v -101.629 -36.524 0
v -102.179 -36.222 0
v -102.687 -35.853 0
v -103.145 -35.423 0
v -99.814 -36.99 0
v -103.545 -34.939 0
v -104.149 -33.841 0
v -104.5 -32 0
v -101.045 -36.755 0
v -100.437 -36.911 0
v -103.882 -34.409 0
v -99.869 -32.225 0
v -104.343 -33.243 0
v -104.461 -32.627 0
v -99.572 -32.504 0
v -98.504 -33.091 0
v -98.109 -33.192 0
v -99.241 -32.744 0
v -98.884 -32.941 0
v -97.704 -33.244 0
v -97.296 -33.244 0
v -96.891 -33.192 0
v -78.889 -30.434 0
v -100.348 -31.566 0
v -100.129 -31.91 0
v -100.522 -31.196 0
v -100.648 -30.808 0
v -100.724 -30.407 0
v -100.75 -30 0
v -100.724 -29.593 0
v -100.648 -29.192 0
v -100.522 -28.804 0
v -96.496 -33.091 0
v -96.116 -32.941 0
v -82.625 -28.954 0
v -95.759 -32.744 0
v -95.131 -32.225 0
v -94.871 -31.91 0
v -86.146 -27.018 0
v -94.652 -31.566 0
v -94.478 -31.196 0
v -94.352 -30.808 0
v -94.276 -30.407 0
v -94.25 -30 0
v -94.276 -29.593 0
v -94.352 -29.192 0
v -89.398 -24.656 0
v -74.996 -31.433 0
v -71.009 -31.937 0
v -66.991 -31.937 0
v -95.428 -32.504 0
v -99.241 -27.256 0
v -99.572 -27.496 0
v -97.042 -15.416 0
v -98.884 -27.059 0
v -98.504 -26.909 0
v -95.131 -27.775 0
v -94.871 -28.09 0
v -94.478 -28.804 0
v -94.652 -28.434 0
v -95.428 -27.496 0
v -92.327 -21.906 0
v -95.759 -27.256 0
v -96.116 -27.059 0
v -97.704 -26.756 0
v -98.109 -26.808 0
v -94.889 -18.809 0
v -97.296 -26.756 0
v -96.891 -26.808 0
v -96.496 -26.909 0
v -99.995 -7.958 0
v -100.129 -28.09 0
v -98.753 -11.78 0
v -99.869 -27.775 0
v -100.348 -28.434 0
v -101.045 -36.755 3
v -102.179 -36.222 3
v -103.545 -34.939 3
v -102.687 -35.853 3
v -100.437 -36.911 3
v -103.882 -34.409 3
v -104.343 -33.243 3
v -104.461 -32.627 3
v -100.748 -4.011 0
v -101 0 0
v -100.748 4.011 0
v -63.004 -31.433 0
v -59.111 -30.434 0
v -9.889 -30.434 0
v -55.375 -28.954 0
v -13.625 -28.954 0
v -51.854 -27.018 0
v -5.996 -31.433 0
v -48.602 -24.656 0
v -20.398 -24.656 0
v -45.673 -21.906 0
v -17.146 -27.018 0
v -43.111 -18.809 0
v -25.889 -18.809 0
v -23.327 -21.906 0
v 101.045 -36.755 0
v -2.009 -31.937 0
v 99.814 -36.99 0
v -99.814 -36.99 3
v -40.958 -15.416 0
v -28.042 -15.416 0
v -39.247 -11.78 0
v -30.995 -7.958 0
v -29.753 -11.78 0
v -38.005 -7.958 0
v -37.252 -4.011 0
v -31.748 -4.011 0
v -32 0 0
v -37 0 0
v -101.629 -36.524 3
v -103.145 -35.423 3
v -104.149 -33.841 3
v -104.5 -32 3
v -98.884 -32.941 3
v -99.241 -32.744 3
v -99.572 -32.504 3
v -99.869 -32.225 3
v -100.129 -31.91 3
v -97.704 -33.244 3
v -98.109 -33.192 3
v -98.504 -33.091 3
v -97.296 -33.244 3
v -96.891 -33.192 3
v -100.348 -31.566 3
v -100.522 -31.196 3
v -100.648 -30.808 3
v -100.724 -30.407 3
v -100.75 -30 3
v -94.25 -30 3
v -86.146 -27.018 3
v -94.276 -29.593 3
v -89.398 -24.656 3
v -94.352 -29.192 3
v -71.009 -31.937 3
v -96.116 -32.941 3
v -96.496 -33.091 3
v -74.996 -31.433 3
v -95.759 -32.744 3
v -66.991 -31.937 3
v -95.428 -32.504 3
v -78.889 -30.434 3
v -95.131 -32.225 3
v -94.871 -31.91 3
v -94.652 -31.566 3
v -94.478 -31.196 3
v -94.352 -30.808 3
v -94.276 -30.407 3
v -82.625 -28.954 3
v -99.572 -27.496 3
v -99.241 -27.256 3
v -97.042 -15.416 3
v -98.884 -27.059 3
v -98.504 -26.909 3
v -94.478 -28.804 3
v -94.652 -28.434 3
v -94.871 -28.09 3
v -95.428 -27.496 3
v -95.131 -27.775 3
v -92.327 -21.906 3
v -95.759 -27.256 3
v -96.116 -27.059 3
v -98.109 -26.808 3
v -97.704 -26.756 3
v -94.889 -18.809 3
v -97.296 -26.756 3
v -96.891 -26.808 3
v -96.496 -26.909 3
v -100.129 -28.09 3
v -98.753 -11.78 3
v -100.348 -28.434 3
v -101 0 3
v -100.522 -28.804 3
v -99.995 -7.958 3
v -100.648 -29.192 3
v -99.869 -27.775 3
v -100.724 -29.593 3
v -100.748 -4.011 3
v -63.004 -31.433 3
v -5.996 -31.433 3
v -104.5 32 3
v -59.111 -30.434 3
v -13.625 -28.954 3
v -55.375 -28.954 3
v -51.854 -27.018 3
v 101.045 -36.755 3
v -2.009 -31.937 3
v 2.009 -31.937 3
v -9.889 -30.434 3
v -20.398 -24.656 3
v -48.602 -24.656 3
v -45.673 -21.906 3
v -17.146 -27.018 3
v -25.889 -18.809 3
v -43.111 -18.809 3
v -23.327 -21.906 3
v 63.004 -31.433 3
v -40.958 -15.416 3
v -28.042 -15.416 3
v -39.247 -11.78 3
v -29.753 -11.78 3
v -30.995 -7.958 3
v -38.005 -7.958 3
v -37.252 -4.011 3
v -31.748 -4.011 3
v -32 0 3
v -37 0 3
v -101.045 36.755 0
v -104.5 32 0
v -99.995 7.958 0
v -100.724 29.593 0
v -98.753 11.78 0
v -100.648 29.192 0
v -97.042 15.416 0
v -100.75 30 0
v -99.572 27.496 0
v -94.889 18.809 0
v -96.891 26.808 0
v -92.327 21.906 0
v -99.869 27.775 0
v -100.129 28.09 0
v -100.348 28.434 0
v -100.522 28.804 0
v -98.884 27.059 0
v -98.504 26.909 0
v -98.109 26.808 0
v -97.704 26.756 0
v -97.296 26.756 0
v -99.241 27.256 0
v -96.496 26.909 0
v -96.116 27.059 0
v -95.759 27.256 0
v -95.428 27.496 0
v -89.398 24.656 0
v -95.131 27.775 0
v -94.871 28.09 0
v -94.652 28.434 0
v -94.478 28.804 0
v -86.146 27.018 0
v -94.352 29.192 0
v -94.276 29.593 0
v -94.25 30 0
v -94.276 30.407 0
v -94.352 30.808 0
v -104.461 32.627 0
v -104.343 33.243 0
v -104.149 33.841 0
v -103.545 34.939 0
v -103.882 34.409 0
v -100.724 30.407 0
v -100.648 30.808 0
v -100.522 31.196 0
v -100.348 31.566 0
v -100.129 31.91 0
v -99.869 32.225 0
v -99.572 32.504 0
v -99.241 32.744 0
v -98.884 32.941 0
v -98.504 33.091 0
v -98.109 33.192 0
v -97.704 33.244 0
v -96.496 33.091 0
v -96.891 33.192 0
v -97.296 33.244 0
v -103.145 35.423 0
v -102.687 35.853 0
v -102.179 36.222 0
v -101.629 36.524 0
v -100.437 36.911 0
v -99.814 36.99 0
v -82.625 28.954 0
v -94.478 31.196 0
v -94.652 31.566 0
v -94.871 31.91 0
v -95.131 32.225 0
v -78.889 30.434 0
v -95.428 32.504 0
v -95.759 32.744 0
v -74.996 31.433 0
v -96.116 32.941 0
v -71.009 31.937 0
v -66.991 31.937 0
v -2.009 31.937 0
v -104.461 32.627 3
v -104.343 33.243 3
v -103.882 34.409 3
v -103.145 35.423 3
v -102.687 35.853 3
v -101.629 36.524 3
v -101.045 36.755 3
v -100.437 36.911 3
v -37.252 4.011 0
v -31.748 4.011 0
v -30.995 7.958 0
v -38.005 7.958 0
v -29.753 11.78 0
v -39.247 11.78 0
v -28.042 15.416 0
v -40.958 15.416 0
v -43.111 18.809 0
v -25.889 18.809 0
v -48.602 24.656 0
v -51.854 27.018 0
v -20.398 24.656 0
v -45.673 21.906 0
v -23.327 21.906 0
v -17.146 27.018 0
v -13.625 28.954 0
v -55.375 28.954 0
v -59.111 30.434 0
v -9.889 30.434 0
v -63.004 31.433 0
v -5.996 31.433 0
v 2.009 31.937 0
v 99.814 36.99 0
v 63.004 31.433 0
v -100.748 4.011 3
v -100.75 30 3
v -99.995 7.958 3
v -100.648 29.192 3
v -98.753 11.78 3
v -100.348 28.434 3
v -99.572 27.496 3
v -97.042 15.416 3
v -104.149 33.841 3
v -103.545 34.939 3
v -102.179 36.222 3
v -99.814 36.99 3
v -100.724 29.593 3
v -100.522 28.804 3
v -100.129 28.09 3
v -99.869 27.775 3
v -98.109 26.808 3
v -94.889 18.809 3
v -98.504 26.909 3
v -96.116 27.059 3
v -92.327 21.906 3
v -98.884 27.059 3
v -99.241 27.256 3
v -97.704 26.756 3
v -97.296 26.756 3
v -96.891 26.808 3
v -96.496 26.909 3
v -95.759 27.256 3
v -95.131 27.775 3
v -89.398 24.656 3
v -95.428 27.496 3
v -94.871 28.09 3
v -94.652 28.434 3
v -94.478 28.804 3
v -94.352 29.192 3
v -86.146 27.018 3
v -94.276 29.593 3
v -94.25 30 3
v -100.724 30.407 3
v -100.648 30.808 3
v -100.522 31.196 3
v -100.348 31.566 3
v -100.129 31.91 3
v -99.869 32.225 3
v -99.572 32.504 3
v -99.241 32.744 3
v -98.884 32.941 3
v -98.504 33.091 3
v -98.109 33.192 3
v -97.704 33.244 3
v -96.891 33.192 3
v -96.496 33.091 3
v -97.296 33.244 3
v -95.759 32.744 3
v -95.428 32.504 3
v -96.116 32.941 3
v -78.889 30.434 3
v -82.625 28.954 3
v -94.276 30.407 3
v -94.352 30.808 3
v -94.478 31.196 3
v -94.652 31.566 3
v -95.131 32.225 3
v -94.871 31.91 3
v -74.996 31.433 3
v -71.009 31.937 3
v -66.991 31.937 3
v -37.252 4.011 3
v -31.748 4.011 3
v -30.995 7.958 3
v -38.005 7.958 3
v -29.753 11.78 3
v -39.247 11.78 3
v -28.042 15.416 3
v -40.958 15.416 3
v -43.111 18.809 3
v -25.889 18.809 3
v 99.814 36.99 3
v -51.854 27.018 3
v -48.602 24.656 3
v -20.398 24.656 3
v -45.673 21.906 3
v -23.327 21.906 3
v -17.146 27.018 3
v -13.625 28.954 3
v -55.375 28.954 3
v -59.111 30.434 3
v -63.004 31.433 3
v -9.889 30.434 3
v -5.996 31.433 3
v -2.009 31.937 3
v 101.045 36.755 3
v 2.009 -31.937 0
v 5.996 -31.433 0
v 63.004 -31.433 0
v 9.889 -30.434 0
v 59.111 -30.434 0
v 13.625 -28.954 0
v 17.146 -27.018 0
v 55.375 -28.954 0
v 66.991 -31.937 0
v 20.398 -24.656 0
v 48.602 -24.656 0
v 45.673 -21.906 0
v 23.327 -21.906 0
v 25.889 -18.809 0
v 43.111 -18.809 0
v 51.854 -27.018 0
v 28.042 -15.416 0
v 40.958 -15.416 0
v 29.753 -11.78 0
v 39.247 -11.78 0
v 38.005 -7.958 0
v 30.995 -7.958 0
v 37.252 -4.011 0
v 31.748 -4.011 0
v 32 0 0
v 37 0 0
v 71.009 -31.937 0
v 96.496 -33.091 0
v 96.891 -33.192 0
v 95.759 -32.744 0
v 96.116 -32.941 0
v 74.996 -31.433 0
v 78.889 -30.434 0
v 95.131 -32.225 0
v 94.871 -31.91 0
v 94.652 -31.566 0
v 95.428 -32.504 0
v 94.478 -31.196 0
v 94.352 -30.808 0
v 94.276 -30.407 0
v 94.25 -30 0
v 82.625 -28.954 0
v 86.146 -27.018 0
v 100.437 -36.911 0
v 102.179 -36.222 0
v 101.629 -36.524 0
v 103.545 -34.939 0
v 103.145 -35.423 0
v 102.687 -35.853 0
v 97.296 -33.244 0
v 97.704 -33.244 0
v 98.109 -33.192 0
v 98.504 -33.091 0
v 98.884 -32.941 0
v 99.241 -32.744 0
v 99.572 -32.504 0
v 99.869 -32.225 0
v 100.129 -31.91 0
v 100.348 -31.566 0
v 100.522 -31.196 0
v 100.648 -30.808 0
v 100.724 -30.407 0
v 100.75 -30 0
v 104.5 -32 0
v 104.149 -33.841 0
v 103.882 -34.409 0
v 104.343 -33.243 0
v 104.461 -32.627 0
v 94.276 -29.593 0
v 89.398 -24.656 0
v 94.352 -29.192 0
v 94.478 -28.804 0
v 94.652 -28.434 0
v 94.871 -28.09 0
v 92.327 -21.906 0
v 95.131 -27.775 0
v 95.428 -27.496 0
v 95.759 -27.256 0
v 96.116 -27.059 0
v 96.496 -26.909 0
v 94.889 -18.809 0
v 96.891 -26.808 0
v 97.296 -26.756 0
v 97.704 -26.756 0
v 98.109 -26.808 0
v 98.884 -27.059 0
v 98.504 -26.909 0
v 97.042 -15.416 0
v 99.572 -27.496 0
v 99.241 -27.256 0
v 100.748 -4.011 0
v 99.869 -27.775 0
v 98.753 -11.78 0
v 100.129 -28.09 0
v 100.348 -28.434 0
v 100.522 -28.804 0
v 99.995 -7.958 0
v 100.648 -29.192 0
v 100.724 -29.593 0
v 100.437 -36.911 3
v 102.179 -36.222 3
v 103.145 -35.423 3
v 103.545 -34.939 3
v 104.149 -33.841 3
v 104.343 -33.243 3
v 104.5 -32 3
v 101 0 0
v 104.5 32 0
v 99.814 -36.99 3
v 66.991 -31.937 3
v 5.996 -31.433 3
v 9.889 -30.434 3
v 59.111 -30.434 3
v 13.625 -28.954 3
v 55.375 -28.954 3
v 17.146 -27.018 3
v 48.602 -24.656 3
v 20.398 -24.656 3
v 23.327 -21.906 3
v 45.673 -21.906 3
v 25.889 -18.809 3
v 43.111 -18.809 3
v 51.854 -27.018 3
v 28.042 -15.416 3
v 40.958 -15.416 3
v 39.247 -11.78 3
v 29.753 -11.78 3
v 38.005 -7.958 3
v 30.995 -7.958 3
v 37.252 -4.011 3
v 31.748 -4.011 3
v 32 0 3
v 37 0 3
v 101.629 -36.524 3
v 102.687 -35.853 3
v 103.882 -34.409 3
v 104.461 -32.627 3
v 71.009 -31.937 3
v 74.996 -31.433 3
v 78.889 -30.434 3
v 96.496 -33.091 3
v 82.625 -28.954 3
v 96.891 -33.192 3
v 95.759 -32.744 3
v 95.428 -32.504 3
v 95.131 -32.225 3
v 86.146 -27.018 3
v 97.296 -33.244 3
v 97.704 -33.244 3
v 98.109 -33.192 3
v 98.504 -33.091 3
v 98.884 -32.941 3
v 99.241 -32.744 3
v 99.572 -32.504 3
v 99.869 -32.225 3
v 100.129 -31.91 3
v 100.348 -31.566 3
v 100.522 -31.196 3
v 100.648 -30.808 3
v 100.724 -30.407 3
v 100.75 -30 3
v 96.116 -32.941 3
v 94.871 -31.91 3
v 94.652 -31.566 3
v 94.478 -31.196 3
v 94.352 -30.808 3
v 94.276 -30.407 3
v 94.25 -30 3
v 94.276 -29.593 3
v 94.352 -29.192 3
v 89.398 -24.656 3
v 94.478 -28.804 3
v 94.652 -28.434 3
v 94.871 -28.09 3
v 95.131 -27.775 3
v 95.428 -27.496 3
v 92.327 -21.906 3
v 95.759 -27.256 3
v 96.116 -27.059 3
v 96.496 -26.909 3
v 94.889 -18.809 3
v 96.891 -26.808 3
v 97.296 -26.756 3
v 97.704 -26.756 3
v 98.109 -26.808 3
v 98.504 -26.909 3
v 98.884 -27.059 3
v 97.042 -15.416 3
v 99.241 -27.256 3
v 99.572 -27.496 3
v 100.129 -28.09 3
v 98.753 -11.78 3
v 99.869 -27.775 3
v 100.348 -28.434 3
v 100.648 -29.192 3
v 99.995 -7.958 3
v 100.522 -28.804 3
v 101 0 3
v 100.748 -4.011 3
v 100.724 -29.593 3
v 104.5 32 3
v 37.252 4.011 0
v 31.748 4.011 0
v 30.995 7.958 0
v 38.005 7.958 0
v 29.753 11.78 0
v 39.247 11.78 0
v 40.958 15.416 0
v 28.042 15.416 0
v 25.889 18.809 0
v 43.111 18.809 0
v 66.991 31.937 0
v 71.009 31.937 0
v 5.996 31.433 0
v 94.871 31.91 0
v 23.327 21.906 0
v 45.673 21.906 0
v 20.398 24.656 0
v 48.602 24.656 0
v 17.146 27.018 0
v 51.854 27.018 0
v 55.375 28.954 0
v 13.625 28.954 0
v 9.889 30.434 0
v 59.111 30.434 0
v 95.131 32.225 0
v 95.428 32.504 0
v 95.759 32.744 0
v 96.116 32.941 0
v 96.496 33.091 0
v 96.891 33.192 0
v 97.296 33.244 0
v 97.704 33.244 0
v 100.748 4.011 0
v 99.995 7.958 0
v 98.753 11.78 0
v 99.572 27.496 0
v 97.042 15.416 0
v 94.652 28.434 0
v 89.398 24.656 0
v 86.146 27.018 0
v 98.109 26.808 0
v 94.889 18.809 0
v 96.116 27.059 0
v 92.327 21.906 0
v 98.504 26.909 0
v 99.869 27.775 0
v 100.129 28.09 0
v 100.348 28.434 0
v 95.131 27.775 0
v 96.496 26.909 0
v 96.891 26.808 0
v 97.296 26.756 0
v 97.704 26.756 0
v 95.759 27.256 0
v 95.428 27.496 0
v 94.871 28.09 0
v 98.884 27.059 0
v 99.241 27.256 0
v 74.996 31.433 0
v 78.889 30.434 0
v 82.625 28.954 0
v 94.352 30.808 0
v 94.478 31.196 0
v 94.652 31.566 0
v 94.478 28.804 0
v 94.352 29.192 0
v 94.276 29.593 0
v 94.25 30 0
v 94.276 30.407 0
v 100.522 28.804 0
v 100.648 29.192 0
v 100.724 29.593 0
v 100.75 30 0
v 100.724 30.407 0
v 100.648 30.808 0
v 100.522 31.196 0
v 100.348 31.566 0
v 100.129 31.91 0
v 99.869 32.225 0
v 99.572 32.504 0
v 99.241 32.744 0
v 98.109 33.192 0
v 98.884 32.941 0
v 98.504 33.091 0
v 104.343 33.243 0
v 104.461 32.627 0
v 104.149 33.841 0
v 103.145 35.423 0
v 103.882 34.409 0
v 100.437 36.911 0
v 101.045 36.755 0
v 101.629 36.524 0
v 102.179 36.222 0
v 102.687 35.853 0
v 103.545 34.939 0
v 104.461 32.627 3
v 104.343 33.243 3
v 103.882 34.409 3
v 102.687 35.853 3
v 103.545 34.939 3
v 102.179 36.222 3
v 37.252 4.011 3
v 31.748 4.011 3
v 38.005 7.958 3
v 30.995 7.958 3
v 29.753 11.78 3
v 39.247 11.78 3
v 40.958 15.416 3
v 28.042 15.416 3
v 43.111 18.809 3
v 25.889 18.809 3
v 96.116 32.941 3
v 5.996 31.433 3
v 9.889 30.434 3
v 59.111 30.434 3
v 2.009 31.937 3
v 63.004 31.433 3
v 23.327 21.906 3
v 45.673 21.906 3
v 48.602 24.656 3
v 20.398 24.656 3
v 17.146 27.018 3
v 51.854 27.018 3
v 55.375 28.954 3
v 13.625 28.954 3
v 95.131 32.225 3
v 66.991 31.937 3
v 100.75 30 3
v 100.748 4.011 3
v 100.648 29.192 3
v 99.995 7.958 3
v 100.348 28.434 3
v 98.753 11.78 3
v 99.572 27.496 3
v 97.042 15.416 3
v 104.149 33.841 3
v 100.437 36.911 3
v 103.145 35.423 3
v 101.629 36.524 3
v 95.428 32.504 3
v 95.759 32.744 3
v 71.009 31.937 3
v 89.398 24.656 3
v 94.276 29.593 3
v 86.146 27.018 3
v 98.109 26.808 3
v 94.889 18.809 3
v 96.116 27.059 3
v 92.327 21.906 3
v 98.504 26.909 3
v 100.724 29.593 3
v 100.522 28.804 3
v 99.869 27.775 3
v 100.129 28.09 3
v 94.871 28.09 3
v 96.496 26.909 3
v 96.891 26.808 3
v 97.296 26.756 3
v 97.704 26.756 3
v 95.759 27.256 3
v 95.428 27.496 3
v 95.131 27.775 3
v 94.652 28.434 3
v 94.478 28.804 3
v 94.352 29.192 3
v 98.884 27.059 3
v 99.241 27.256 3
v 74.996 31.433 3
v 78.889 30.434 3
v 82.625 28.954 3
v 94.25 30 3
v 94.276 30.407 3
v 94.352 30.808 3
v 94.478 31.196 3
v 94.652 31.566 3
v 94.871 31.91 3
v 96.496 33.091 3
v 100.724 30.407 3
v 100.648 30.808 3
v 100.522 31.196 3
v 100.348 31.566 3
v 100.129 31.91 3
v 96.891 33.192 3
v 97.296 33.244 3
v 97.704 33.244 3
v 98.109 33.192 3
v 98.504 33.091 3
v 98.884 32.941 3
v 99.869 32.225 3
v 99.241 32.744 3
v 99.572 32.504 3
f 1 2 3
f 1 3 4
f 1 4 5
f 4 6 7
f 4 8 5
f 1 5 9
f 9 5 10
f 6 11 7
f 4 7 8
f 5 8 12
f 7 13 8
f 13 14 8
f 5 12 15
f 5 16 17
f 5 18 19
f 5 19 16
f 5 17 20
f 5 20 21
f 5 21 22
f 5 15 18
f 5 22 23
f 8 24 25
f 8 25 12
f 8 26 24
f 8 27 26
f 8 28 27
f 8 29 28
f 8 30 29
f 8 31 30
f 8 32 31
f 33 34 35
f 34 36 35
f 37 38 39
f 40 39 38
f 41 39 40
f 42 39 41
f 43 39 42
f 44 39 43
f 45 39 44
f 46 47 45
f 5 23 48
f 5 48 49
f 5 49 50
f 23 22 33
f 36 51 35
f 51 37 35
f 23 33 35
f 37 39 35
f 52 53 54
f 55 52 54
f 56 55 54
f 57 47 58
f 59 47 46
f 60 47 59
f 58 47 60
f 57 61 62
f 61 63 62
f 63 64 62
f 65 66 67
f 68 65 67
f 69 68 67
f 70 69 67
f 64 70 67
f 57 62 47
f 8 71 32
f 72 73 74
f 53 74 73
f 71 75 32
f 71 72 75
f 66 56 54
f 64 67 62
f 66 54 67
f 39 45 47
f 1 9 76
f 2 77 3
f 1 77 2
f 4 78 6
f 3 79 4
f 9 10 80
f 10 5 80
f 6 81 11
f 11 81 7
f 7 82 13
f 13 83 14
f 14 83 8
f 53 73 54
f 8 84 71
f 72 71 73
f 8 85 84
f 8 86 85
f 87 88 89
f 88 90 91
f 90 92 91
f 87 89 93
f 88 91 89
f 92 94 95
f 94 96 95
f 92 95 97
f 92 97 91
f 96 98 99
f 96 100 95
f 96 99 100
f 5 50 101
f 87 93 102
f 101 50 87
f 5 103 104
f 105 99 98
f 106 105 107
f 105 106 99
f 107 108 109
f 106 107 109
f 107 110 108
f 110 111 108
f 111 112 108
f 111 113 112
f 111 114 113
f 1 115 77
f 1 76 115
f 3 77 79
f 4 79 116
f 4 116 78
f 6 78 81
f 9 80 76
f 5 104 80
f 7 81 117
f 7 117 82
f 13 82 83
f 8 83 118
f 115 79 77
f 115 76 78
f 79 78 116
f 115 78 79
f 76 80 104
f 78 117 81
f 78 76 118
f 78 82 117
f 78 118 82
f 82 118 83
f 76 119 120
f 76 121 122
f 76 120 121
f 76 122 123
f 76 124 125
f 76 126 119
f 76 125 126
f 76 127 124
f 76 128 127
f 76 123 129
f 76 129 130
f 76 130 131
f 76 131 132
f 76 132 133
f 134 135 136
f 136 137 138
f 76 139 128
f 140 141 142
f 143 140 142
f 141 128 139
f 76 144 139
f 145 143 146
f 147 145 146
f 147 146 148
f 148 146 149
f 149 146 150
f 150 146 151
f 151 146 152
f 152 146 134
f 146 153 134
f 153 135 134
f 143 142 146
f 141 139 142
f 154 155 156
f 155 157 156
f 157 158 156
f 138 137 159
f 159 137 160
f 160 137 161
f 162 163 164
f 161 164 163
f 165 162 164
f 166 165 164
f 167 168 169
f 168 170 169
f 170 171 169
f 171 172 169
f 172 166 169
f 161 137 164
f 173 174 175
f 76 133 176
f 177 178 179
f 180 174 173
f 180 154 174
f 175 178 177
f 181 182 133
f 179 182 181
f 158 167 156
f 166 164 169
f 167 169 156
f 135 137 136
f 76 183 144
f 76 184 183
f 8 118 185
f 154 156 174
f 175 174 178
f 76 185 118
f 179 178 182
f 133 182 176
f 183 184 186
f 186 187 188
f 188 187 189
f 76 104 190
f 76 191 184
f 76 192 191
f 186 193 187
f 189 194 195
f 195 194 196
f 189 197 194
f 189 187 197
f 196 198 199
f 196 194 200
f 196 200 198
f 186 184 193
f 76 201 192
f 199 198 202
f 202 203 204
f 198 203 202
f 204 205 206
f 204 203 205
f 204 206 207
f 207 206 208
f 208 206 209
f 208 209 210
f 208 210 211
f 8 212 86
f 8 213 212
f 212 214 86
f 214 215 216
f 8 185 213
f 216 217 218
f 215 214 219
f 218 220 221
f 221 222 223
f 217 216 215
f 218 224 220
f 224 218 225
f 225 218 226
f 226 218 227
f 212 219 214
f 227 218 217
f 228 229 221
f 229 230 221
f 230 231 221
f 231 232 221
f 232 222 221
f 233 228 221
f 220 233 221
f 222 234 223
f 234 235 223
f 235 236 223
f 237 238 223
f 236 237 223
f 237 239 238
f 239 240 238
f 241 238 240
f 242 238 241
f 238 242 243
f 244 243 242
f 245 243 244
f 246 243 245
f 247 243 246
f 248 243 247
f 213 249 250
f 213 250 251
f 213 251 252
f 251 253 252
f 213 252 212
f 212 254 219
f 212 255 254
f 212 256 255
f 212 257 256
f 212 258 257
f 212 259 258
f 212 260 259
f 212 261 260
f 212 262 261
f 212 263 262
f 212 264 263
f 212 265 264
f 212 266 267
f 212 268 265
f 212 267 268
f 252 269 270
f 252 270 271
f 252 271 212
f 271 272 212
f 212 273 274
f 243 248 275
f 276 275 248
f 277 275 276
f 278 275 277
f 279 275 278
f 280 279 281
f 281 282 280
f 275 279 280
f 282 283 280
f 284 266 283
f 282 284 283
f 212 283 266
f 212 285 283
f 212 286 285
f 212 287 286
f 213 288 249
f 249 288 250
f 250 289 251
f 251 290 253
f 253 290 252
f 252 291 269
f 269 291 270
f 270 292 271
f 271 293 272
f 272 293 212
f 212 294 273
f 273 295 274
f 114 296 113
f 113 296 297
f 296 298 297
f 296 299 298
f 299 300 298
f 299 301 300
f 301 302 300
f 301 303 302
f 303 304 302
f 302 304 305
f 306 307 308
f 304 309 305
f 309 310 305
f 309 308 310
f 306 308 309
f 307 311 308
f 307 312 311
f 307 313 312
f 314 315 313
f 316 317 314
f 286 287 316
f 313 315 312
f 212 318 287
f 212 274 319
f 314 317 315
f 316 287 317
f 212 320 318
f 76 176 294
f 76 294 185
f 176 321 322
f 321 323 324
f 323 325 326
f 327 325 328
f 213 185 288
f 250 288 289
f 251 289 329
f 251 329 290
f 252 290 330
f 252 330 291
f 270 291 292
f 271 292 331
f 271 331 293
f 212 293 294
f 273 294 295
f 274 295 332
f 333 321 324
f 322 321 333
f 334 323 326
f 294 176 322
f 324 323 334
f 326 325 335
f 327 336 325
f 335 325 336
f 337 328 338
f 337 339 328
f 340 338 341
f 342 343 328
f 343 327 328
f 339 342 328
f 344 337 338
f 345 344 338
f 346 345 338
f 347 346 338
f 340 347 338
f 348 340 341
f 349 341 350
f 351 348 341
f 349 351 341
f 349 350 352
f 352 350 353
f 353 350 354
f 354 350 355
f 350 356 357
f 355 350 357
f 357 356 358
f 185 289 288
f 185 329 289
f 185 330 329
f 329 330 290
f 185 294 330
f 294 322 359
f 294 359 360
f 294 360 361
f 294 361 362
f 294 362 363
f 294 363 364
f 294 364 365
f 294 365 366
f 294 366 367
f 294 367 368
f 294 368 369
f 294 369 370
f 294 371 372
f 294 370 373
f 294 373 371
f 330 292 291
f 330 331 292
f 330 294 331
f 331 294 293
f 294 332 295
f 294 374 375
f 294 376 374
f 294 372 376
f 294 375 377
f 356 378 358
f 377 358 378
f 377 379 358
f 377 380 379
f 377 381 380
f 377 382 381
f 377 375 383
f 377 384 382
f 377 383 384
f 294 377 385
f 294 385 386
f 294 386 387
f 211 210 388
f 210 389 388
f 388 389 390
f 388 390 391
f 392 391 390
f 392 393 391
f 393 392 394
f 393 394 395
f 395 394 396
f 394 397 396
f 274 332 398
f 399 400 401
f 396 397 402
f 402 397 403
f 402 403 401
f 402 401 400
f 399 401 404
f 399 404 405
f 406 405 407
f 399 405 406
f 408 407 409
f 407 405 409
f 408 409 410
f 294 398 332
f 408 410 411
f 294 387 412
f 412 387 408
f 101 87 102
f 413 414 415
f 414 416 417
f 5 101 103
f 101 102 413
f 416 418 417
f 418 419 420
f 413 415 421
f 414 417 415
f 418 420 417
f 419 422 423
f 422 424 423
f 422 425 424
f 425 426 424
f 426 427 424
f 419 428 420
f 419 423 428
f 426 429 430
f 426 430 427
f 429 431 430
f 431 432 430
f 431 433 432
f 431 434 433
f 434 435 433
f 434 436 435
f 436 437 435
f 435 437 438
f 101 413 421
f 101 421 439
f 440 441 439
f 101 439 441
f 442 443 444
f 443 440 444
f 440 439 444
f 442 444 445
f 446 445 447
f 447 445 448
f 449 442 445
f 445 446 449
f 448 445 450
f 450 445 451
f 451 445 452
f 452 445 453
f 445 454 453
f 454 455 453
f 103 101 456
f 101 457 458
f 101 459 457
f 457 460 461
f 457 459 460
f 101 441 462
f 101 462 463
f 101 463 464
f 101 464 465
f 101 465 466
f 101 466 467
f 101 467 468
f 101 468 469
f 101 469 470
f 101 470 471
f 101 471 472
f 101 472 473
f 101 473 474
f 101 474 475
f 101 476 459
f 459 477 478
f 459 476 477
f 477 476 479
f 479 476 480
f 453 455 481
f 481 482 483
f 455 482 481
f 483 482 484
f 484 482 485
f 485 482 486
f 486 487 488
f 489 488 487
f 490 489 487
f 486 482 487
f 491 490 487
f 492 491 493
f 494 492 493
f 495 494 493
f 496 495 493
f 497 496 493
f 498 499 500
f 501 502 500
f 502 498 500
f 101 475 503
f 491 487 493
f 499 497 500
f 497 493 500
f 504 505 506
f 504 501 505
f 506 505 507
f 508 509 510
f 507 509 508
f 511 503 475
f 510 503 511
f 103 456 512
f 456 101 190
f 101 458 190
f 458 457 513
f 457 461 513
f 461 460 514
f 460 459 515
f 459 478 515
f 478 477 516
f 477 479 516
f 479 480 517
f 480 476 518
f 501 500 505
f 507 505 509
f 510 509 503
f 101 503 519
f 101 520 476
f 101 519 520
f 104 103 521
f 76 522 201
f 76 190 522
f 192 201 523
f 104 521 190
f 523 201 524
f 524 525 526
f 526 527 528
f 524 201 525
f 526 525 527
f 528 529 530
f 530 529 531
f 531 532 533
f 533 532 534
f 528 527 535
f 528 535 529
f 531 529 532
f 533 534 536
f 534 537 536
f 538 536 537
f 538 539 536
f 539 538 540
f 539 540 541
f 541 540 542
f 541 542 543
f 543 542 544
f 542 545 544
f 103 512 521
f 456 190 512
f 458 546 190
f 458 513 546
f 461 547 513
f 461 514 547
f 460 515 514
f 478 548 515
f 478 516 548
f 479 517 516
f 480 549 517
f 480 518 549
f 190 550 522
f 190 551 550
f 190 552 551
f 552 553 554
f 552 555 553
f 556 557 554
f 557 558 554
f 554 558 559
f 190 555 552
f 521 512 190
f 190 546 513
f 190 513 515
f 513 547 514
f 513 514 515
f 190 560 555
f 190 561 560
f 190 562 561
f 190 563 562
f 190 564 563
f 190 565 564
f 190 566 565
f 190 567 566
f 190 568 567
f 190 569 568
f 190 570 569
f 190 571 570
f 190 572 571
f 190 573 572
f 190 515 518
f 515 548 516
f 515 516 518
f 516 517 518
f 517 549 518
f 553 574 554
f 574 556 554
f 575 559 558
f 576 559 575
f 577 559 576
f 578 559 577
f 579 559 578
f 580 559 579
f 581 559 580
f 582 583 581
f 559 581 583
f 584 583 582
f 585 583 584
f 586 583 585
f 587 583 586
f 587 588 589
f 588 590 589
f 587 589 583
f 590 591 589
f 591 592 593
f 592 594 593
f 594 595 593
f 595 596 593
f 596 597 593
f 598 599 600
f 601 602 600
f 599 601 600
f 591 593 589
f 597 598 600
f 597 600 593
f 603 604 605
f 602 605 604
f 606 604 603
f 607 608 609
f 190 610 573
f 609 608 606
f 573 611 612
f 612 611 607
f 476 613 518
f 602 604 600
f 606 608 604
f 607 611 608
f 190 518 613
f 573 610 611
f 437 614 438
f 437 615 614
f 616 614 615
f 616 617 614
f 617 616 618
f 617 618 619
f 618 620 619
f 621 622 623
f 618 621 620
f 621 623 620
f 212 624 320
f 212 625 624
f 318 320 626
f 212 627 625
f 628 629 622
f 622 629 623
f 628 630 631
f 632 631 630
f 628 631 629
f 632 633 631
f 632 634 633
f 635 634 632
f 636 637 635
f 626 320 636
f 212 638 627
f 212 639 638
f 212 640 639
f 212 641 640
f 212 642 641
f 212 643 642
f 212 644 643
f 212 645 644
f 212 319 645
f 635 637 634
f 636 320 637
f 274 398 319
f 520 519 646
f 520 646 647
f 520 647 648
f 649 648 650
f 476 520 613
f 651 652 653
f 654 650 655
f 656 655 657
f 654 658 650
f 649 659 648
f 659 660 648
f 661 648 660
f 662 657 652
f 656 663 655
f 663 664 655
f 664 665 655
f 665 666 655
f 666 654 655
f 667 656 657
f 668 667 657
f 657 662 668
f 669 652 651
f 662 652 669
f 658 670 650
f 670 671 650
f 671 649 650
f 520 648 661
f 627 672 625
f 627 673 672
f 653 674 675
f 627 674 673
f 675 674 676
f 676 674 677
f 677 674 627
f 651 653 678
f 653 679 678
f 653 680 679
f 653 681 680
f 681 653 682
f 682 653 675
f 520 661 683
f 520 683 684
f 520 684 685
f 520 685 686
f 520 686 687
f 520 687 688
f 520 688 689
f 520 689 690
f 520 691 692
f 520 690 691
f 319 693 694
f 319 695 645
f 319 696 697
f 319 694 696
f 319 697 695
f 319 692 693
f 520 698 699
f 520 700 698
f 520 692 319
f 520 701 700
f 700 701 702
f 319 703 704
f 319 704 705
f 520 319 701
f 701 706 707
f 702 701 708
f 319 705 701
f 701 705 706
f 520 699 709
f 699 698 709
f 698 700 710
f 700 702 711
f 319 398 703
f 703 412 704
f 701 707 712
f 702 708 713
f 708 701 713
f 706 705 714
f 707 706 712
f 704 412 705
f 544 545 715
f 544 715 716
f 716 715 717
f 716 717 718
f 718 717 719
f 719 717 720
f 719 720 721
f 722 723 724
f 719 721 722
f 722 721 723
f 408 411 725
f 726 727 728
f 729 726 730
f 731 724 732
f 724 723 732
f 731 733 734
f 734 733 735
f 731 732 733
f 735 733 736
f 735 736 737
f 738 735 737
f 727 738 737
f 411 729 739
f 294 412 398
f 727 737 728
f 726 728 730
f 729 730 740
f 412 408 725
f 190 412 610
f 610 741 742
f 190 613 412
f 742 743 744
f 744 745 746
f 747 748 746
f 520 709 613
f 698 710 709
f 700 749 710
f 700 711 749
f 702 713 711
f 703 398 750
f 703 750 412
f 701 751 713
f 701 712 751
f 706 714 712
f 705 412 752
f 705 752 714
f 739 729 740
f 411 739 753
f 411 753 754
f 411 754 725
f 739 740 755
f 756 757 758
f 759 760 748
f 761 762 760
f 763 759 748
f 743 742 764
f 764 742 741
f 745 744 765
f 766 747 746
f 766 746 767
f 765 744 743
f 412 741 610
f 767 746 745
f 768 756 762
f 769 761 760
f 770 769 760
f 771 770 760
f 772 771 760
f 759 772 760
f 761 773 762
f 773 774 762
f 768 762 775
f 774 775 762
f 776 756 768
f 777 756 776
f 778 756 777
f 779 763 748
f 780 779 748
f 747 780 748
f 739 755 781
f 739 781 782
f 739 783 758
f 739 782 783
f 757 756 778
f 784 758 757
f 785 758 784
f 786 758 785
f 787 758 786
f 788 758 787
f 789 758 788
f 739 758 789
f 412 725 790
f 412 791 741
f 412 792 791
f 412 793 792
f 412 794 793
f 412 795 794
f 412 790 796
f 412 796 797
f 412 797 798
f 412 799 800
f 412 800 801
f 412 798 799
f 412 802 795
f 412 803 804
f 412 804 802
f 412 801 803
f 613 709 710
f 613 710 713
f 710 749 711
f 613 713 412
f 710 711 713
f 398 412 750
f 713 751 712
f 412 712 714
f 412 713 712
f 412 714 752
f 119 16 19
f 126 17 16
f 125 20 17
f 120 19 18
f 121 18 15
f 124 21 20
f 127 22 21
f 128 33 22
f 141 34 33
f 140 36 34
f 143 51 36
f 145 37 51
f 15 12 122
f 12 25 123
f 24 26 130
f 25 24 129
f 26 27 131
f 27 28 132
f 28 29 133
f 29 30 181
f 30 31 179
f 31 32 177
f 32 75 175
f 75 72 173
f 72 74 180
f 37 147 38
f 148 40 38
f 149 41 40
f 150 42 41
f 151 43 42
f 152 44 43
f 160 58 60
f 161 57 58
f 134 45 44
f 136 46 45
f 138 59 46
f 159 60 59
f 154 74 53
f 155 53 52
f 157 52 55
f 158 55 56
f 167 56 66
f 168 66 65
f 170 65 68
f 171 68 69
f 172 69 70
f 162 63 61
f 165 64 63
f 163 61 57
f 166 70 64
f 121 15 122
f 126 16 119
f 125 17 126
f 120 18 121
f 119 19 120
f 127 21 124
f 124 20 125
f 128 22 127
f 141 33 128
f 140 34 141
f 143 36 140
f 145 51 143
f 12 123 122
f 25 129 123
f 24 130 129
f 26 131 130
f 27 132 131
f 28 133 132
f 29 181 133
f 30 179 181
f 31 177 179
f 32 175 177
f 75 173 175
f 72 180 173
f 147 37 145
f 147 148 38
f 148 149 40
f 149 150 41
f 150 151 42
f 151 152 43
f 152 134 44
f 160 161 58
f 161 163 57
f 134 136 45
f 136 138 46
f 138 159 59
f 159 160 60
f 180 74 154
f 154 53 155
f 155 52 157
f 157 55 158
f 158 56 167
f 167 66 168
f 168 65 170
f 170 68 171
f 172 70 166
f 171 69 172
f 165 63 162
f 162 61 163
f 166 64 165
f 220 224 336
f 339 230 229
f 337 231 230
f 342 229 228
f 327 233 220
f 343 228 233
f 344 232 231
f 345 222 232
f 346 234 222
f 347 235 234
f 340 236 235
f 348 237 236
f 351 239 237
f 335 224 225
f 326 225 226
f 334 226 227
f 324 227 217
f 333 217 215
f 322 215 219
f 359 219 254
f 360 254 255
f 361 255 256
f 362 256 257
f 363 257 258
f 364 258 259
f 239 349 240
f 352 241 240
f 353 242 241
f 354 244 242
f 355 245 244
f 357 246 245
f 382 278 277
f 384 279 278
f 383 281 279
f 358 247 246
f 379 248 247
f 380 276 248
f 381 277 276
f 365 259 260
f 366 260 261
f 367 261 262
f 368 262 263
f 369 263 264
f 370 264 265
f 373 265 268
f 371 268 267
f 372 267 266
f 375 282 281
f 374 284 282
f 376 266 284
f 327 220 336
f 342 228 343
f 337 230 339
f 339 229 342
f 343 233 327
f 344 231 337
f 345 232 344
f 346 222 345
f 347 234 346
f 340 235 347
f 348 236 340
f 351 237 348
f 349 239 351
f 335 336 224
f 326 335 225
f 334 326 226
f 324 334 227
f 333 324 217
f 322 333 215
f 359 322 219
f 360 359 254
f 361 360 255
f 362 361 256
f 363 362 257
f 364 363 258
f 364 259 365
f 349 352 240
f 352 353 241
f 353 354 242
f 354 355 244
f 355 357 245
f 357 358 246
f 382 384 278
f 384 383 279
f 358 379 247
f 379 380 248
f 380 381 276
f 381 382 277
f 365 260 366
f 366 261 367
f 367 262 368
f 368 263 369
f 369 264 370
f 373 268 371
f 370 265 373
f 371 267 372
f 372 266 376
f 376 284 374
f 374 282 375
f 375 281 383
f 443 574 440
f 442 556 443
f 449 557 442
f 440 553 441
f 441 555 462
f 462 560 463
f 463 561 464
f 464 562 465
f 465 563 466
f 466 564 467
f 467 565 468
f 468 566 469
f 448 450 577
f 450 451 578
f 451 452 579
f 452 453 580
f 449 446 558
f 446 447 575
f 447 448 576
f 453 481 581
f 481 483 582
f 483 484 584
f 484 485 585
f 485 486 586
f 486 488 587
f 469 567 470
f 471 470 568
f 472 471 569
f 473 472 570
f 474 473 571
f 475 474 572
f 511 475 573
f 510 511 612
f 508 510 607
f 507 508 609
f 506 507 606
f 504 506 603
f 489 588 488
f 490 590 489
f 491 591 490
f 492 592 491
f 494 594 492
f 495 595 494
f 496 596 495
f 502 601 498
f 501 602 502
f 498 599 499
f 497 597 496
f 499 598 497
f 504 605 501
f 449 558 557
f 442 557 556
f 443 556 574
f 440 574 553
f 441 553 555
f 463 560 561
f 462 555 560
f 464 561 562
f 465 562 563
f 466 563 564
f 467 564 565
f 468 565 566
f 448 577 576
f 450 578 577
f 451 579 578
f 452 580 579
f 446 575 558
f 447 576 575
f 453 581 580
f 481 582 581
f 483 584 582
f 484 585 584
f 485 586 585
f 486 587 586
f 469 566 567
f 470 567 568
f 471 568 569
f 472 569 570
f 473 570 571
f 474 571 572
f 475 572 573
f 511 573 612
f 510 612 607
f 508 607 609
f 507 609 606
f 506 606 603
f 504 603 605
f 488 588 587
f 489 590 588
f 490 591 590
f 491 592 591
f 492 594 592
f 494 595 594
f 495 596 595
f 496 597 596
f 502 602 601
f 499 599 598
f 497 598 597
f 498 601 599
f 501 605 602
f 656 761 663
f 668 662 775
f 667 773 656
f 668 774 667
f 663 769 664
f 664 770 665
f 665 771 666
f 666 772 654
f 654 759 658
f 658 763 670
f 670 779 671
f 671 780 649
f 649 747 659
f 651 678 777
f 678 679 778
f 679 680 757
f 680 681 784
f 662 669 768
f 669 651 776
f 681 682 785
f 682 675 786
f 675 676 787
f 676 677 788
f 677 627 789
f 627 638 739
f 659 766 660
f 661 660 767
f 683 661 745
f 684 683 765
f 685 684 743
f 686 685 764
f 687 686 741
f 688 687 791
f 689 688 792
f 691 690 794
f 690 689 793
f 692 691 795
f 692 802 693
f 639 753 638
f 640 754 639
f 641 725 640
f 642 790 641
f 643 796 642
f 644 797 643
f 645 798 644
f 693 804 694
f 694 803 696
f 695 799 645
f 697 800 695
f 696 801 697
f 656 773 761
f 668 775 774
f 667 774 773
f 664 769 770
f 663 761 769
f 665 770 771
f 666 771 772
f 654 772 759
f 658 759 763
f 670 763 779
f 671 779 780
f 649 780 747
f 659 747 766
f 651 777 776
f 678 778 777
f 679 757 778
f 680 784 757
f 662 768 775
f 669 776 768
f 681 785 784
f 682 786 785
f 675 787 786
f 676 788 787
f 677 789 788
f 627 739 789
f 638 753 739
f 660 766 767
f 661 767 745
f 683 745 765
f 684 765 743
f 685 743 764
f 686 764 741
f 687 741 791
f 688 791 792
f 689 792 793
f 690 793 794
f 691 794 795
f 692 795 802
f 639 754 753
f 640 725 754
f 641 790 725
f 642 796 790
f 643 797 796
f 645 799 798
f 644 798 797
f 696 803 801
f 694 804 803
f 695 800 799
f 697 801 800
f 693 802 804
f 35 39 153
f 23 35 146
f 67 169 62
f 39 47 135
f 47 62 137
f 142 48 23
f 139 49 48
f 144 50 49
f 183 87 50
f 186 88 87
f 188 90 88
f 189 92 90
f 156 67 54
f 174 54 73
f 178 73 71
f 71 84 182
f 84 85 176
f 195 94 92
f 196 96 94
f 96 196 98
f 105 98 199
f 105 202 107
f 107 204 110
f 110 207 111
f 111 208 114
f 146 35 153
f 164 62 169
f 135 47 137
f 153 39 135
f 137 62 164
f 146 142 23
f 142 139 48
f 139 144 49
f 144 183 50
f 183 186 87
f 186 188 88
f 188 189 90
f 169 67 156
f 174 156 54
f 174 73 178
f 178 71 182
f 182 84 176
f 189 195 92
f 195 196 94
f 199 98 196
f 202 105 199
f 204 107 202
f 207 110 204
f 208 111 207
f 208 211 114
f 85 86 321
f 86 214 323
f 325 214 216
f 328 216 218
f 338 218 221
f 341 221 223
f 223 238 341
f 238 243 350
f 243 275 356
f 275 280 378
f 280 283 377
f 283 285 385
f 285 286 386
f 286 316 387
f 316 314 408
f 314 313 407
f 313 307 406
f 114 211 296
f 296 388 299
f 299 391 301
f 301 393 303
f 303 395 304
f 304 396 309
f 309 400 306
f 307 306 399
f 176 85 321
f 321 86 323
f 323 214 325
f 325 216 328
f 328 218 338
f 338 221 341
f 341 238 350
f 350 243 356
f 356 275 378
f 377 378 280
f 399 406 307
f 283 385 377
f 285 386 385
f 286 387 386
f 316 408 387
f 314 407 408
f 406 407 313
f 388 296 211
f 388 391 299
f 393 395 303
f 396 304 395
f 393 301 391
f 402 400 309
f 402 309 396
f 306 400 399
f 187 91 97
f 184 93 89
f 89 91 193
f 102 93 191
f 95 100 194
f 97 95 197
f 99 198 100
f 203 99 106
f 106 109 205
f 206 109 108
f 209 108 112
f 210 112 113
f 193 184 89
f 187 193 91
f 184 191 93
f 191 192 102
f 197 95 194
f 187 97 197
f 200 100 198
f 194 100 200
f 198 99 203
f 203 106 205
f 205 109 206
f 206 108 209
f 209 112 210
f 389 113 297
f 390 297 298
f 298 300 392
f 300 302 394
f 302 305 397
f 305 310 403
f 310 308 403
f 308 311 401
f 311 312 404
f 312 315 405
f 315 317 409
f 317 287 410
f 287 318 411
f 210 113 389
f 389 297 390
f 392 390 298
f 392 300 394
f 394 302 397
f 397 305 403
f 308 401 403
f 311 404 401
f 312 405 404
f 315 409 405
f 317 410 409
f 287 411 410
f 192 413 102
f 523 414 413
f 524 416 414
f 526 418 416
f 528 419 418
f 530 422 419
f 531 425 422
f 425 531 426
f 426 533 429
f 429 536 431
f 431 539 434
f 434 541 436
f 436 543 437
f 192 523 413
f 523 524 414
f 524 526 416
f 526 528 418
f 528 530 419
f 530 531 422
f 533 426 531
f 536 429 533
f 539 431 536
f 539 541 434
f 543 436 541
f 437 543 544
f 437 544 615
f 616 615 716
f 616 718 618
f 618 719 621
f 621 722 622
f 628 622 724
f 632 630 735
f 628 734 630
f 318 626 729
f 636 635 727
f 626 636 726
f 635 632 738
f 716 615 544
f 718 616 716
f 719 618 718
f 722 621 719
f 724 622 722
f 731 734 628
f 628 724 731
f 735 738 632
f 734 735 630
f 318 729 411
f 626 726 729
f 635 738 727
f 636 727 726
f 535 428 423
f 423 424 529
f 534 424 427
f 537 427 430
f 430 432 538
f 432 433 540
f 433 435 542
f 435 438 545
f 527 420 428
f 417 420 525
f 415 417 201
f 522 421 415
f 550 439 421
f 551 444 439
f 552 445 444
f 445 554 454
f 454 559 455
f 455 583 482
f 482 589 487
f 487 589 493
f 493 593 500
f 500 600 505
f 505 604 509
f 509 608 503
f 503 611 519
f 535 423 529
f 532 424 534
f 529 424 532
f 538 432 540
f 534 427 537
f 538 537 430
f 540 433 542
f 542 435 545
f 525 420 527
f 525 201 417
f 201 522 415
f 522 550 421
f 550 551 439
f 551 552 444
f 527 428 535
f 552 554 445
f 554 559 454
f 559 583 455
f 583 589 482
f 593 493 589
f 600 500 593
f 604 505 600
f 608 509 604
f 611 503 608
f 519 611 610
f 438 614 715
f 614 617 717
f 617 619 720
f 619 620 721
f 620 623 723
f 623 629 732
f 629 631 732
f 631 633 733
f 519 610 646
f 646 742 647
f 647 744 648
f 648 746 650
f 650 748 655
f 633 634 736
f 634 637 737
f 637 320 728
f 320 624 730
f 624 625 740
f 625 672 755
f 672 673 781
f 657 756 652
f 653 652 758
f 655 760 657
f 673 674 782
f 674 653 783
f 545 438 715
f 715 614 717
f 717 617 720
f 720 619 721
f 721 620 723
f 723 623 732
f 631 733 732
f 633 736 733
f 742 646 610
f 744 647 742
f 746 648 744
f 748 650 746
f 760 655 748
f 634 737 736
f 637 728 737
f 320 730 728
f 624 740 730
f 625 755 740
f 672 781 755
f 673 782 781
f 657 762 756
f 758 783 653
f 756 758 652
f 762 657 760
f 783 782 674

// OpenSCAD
$fn = 50;

difference() {
	union() {
		hull() {
			translate(v = [-99.5, 32.0, 0]) {
				cylinder(h = 3, r = 5);
			}
			translate(v = [99.5, 32.0, 0]) {
				cylinder(h = 3, r = 5);
			}
			translate(v = [-99.5, -32.0, 0]) {
				cylinder(h = 3, r = 5);
			}
			translate(v = [99.5, -32.0, 0]) {
				cylinder(h = 3, r = 5);
			}
		}
	}
	union() {
		translate(v = [-97.5, -30.0, -100.0]) {
			cylinder(h = 200, r = 3.25);
		}
		translate(v = [-97.5, 30.0, -100.0]) {
			cylinder(h = 200, r = 3.25);
		}
		translate(v = [97.5, -30.0, -100.0]) {
			cylinder(h = 200, r = 3.25);
		}
		translate(v = [97.5, 30.0, -100.0]) {
			cylinder(h = 200, r = 3.25);
		}
		translate(v = [-97.5, -30.0, -100.0]) {
			cylinder(h = 200, r = 1.8);
		}
		translate(v = [-97.5, 30.0, -100.0]) {
			cylinder(h = 200, r = 1.8);
		}
		translate(v = [97.5, -30.0, -100.0]) {
			cylinder(h = 200, r = 1.8);
		}
		translate(v = [97.5, 30.0, -100.0]) {
			cylinder(h = 200, r = 1.8);
		}
		translate(v = [-69.0, 0, 0.0]) {
			cylinder(h = 3, r = 32.0);
		}
		cylinder(h = 3, r = 32.0);
		translate(v = [69.0, 0, 0.0]) {
			cylinder(h = 3, r = 32.0);
		}
	}
}
